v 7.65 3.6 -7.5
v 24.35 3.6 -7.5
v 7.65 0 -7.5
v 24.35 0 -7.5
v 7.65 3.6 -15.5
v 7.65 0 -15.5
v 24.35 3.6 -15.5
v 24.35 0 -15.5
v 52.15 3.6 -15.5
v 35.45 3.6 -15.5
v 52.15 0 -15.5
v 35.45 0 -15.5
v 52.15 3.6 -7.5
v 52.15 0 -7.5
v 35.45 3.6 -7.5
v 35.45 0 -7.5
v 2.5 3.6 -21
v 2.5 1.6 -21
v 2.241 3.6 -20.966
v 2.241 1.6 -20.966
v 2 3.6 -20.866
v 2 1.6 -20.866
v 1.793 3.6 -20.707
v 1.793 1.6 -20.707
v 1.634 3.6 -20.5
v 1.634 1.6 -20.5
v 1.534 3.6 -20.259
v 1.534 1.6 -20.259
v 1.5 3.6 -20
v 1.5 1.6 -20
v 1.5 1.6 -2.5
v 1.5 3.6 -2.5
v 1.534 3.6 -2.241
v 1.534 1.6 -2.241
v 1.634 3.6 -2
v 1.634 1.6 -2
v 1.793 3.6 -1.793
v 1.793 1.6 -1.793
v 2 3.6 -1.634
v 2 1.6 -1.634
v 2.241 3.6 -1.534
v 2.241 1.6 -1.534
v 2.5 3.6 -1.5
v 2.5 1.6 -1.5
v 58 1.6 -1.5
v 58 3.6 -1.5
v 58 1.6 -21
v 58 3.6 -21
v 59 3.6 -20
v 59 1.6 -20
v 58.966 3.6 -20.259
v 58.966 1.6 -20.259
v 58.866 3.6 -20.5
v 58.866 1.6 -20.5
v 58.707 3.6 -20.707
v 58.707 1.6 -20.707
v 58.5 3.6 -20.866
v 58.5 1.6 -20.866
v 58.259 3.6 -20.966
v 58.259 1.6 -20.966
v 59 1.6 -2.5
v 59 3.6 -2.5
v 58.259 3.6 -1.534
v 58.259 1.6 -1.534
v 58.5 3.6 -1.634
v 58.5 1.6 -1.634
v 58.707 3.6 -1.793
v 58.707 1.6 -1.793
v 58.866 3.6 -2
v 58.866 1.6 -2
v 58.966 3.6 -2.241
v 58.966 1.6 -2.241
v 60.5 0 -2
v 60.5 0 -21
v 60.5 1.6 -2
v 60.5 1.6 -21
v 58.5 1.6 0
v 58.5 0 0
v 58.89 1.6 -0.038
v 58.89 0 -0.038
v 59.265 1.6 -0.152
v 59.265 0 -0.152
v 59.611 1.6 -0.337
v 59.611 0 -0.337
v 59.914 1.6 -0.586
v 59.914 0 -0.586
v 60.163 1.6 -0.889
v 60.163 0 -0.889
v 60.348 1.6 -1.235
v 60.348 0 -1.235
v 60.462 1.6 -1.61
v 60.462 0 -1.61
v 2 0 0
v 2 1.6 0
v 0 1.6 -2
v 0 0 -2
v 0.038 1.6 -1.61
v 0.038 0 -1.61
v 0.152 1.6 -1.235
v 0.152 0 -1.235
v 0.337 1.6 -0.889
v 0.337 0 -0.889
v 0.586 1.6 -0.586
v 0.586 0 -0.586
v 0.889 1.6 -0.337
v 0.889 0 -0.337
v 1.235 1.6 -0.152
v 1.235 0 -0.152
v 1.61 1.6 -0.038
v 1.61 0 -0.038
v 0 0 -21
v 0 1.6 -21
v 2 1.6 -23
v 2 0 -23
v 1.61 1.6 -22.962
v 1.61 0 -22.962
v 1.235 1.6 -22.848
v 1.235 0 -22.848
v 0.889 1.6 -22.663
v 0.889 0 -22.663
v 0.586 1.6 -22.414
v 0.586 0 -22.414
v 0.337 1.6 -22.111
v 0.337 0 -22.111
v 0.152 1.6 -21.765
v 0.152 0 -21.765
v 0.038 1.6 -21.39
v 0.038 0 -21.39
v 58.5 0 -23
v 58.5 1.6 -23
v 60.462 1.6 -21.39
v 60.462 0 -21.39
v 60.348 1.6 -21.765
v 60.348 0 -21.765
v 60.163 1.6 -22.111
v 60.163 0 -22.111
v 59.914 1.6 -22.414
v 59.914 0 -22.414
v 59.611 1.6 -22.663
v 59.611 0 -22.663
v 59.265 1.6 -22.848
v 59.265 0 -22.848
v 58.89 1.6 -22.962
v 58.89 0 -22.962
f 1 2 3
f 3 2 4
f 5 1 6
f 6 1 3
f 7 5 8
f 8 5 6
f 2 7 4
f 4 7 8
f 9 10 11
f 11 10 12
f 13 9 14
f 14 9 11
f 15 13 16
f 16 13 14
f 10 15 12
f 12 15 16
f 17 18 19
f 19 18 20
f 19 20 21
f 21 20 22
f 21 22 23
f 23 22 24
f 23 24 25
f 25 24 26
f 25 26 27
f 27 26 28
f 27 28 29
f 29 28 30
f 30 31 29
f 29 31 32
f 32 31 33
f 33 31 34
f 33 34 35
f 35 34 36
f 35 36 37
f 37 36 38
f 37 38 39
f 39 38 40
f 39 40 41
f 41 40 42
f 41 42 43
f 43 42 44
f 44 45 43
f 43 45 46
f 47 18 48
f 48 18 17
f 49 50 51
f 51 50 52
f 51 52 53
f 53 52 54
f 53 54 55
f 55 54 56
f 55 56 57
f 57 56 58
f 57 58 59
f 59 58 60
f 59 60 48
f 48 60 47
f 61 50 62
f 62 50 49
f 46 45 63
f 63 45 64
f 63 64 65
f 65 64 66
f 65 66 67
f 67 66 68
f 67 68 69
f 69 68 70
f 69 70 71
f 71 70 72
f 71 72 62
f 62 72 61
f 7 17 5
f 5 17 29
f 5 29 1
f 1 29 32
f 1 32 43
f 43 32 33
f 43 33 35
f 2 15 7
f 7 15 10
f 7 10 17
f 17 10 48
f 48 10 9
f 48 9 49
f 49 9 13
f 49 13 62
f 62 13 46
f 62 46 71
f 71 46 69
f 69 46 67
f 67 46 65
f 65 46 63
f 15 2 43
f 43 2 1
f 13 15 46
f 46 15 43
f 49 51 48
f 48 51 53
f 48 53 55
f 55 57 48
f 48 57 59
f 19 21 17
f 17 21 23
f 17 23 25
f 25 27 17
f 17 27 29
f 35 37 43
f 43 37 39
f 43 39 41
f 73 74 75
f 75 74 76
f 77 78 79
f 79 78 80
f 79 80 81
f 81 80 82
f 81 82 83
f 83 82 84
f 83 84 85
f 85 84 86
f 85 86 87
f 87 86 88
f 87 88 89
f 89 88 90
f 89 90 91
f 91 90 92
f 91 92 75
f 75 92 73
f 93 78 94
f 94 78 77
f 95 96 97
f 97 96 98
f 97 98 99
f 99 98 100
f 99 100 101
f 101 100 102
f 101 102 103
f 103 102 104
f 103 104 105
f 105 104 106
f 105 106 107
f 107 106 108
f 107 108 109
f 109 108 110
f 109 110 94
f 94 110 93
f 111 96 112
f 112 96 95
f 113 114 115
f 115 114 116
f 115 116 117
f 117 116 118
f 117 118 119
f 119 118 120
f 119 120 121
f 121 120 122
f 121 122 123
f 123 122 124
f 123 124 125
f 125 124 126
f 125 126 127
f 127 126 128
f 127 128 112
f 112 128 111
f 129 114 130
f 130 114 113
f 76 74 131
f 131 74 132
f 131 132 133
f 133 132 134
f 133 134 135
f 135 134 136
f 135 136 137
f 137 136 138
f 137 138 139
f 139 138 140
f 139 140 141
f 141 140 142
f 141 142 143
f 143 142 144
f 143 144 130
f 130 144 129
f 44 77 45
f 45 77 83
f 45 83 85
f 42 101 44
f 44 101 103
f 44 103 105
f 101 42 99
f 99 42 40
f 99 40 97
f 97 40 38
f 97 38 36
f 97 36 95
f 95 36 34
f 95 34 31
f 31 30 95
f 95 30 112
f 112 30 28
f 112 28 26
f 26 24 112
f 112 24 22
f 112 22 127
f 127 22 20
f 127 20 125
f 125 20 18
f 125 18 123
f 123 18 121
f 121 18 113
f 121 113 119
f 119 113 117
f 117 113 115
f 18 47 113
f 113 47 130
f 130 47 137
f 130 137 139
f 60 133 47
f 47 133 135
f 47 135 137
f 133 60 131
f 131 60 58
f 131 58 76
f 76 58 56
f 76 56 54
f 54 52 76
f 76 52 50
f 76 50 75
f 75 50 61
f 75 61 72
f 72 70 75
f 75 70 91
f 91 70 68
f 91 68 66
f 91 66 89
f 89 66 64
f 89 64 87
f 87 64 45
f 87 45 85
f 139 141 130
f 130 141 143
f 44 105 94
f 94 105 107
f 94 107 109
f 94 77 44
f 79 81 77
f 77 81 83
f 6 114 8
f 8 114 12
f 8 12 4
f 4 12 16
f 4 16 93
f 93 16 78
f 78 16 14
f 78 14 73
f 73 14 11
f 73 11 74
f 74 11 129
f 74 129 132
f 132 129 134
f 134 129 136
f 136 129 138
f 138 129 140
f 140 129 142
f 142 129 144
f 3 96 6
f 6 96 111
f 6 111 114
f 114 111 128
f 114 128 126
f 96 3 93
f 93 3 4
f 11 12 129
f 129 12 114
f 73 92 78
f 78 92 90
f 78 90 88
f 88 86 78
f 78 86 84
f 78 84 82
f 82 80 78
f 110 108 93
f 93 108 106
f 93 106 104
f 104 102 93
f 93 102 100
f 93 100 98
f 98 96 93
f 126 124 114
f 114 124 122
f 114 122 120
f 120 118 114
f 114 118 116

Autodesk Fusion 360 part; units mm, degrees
sketch "Skizze1" plane through (0, 0, 0) normal (0, 1, 0) x (1, 0, 0)
  arc A0 (0, 2) -> (2, 0) centre (2, 2) ccw
  arc A1 (2, 23) -> (0, 21) centre (2, 21) ccw
  line L0 (58.5, 23) -> (2, 23)
  line L1 (60.5, 2) -> (60.5, 21)
  arc A2 (58.5, 0) -> (60.5, 2) centre (58.5, 2) ccw
  line L2 (2, 0) -> (58.5, 0)
  line L3 (0, 21) -> (0, 2)
  arc A3 (60.5, 21) -> (58.5, 23) centre (58.5, 21) ccw
  point P0 (60.5, 0)
  point P1 (0, 23)
  dimension "d1" = 60.5
  dimension "d2" = 23
  dimension "d3" = 2
  dimension "d4" = 2
  dimension "d5" = 2
  dimension "d6" = 2
sketch "Skizze2" plane through (0, 0, 0) normal (0, 1, 0) x (1, 0, 0)
  line L0 (2.5, 1.5) -> (58, 1.5)
  line L1 (59, 2.5) -> (59, 20)
  line L2 (58, 21) -> (2.5, 21)
  line L3 (1.5, 20) -> (1.5, 2.5)
  line L4 (2, 0) -> (58.5, 0)
  line L5 (0, 21) -> (0, 2)
  arc A0 (2.5, 21) -> (1.5, 20) centre (2.5, 20) ccw
  arc A1 (1.5, 2.5) -> (2.5, 1.5) centre (2.5, 2.5) ccw
  arc A2 (59, 20) -> (58, 21) centre (58, 20) ccw
  arc A3 (58, 1.5) -> (59, 2.5) centre (58, 2.5) ccw
  point P0 (1.5, 1.5)
  point P1 (59, 1.5)
  point P2 (1.5, 21)
  dimension "d7" = 57.5
  dimension "d8" = 19.5
  dimension "d9" = 1.5
  dimension "d10" = 1.5
  dimension "d11" = 1
sketch "Skizze5" plane through (0, 0, 0) normal (0, 1, 0) x (1, 0, 0)
  line L0 (4, 4.2) -> (28, 4.2)
  line L1 (28, 4.2) -> (28, 18.8)
  line L2 (28, 18.8) -> (4, 18.8)
  line L3 (4, 18.8) -> (4, 4.2)
  line L4 (7.65, 7.5) -> (24.35, 7.5)
  line L5 (24.35, 7.5) -> (24.35, 15.5)
  line L6 (24.35, 15.5) -> (7.65, 15.5)
  line L7 (7.65, 15.5) -> (7.65, 7.5)
  line L8 (0, 21) -> (0, 2)
  line L9 (35.45, 7.5) -> (52.15, 7.5)
  line L10 (52.15, 15.5) -> (35.45, 15.5)
  line L11 (35.45, 15.5) -> (35.45, 7.5)
  line L12 (55.8, 4.2) -> (55.8, 18.8)
  line L13 (55.8, 18.8) -> (31.8, 18.8)
  line L14 (31.8, 18.8) -> (31.8, 4.2)
  line L15 (31.8, 4.2) -> (55.8, 4.2)
  line L16 (2, 0) -> (58.5, 0)
  line L17 (52.15, 7.5) -> (52.15, 15.5)
  dimension "d52" = 24
  dimension "d53" = 14.6
  dimension "d54" = 16.7
  dimension "d55" = 8
  dimension "d56" = 3.3
  dimension "d57" = 3.65
  dimension "d58" = 4
  dimension "d59" = 24
  dimension "d60" = 14.6
  dimension "d61" = 16.7
  dimension "d62" = 8
  dimension "d63" = 3.3
  dimension "d65" = 4.2
  dimension "d66" = 4.2
  dimension "d81" = 3.65
extrude "Extrusion8" add sketch "Skizze1" along normal blind 1.6
extrude "Extrusion9" add sketch "Skizze2" along normal blind 3.6
extrude "Extrusion10" cut sketch "Skizze5" along normal blind 20 contours L4 L5 L6 L7 | L9 L10 L11 L17
sketch "Skizze4" plane through (0, 0, 0) normal (0, 1, 0) x (1, 0, 0)
  circle A0 centre (44.5, 8) radius 1.5
  circle A1 centre (49.5, 8) radius 1.5
  circle A2 centre (54.5, 8) radius 1.5
  line L0 (2.5, 1.5) -> (58, 1.5)
  line L1 (24, 17.25) -> (24, 6.05)
  line L2 (36.5, 6.05) -> (36.5, 17.25)
  line L3 (2, 0) -> (58.5, 0)
  dimension "d16" = 3
  dimension "d17" = 3
  dimension "d18" = 3
  dimension "d19" = 5
  dimension "d20" = 5
  dimension "d25" = 8
  dimension "d26" = 8
extrude "Extrusion1" [suppressed]
extrude "Extrusion2" [suppressed]
extrude "Extrusion3" [suppressed]
equation "d16 = h1"
equation "d17 = h1"
equation "d18 = h1"
equation "h1 = 3 mm"
equation "h1_hoehe = 6.5 mm"
equation "d26 = h1_hoehe + ( h1 / 2 )"
